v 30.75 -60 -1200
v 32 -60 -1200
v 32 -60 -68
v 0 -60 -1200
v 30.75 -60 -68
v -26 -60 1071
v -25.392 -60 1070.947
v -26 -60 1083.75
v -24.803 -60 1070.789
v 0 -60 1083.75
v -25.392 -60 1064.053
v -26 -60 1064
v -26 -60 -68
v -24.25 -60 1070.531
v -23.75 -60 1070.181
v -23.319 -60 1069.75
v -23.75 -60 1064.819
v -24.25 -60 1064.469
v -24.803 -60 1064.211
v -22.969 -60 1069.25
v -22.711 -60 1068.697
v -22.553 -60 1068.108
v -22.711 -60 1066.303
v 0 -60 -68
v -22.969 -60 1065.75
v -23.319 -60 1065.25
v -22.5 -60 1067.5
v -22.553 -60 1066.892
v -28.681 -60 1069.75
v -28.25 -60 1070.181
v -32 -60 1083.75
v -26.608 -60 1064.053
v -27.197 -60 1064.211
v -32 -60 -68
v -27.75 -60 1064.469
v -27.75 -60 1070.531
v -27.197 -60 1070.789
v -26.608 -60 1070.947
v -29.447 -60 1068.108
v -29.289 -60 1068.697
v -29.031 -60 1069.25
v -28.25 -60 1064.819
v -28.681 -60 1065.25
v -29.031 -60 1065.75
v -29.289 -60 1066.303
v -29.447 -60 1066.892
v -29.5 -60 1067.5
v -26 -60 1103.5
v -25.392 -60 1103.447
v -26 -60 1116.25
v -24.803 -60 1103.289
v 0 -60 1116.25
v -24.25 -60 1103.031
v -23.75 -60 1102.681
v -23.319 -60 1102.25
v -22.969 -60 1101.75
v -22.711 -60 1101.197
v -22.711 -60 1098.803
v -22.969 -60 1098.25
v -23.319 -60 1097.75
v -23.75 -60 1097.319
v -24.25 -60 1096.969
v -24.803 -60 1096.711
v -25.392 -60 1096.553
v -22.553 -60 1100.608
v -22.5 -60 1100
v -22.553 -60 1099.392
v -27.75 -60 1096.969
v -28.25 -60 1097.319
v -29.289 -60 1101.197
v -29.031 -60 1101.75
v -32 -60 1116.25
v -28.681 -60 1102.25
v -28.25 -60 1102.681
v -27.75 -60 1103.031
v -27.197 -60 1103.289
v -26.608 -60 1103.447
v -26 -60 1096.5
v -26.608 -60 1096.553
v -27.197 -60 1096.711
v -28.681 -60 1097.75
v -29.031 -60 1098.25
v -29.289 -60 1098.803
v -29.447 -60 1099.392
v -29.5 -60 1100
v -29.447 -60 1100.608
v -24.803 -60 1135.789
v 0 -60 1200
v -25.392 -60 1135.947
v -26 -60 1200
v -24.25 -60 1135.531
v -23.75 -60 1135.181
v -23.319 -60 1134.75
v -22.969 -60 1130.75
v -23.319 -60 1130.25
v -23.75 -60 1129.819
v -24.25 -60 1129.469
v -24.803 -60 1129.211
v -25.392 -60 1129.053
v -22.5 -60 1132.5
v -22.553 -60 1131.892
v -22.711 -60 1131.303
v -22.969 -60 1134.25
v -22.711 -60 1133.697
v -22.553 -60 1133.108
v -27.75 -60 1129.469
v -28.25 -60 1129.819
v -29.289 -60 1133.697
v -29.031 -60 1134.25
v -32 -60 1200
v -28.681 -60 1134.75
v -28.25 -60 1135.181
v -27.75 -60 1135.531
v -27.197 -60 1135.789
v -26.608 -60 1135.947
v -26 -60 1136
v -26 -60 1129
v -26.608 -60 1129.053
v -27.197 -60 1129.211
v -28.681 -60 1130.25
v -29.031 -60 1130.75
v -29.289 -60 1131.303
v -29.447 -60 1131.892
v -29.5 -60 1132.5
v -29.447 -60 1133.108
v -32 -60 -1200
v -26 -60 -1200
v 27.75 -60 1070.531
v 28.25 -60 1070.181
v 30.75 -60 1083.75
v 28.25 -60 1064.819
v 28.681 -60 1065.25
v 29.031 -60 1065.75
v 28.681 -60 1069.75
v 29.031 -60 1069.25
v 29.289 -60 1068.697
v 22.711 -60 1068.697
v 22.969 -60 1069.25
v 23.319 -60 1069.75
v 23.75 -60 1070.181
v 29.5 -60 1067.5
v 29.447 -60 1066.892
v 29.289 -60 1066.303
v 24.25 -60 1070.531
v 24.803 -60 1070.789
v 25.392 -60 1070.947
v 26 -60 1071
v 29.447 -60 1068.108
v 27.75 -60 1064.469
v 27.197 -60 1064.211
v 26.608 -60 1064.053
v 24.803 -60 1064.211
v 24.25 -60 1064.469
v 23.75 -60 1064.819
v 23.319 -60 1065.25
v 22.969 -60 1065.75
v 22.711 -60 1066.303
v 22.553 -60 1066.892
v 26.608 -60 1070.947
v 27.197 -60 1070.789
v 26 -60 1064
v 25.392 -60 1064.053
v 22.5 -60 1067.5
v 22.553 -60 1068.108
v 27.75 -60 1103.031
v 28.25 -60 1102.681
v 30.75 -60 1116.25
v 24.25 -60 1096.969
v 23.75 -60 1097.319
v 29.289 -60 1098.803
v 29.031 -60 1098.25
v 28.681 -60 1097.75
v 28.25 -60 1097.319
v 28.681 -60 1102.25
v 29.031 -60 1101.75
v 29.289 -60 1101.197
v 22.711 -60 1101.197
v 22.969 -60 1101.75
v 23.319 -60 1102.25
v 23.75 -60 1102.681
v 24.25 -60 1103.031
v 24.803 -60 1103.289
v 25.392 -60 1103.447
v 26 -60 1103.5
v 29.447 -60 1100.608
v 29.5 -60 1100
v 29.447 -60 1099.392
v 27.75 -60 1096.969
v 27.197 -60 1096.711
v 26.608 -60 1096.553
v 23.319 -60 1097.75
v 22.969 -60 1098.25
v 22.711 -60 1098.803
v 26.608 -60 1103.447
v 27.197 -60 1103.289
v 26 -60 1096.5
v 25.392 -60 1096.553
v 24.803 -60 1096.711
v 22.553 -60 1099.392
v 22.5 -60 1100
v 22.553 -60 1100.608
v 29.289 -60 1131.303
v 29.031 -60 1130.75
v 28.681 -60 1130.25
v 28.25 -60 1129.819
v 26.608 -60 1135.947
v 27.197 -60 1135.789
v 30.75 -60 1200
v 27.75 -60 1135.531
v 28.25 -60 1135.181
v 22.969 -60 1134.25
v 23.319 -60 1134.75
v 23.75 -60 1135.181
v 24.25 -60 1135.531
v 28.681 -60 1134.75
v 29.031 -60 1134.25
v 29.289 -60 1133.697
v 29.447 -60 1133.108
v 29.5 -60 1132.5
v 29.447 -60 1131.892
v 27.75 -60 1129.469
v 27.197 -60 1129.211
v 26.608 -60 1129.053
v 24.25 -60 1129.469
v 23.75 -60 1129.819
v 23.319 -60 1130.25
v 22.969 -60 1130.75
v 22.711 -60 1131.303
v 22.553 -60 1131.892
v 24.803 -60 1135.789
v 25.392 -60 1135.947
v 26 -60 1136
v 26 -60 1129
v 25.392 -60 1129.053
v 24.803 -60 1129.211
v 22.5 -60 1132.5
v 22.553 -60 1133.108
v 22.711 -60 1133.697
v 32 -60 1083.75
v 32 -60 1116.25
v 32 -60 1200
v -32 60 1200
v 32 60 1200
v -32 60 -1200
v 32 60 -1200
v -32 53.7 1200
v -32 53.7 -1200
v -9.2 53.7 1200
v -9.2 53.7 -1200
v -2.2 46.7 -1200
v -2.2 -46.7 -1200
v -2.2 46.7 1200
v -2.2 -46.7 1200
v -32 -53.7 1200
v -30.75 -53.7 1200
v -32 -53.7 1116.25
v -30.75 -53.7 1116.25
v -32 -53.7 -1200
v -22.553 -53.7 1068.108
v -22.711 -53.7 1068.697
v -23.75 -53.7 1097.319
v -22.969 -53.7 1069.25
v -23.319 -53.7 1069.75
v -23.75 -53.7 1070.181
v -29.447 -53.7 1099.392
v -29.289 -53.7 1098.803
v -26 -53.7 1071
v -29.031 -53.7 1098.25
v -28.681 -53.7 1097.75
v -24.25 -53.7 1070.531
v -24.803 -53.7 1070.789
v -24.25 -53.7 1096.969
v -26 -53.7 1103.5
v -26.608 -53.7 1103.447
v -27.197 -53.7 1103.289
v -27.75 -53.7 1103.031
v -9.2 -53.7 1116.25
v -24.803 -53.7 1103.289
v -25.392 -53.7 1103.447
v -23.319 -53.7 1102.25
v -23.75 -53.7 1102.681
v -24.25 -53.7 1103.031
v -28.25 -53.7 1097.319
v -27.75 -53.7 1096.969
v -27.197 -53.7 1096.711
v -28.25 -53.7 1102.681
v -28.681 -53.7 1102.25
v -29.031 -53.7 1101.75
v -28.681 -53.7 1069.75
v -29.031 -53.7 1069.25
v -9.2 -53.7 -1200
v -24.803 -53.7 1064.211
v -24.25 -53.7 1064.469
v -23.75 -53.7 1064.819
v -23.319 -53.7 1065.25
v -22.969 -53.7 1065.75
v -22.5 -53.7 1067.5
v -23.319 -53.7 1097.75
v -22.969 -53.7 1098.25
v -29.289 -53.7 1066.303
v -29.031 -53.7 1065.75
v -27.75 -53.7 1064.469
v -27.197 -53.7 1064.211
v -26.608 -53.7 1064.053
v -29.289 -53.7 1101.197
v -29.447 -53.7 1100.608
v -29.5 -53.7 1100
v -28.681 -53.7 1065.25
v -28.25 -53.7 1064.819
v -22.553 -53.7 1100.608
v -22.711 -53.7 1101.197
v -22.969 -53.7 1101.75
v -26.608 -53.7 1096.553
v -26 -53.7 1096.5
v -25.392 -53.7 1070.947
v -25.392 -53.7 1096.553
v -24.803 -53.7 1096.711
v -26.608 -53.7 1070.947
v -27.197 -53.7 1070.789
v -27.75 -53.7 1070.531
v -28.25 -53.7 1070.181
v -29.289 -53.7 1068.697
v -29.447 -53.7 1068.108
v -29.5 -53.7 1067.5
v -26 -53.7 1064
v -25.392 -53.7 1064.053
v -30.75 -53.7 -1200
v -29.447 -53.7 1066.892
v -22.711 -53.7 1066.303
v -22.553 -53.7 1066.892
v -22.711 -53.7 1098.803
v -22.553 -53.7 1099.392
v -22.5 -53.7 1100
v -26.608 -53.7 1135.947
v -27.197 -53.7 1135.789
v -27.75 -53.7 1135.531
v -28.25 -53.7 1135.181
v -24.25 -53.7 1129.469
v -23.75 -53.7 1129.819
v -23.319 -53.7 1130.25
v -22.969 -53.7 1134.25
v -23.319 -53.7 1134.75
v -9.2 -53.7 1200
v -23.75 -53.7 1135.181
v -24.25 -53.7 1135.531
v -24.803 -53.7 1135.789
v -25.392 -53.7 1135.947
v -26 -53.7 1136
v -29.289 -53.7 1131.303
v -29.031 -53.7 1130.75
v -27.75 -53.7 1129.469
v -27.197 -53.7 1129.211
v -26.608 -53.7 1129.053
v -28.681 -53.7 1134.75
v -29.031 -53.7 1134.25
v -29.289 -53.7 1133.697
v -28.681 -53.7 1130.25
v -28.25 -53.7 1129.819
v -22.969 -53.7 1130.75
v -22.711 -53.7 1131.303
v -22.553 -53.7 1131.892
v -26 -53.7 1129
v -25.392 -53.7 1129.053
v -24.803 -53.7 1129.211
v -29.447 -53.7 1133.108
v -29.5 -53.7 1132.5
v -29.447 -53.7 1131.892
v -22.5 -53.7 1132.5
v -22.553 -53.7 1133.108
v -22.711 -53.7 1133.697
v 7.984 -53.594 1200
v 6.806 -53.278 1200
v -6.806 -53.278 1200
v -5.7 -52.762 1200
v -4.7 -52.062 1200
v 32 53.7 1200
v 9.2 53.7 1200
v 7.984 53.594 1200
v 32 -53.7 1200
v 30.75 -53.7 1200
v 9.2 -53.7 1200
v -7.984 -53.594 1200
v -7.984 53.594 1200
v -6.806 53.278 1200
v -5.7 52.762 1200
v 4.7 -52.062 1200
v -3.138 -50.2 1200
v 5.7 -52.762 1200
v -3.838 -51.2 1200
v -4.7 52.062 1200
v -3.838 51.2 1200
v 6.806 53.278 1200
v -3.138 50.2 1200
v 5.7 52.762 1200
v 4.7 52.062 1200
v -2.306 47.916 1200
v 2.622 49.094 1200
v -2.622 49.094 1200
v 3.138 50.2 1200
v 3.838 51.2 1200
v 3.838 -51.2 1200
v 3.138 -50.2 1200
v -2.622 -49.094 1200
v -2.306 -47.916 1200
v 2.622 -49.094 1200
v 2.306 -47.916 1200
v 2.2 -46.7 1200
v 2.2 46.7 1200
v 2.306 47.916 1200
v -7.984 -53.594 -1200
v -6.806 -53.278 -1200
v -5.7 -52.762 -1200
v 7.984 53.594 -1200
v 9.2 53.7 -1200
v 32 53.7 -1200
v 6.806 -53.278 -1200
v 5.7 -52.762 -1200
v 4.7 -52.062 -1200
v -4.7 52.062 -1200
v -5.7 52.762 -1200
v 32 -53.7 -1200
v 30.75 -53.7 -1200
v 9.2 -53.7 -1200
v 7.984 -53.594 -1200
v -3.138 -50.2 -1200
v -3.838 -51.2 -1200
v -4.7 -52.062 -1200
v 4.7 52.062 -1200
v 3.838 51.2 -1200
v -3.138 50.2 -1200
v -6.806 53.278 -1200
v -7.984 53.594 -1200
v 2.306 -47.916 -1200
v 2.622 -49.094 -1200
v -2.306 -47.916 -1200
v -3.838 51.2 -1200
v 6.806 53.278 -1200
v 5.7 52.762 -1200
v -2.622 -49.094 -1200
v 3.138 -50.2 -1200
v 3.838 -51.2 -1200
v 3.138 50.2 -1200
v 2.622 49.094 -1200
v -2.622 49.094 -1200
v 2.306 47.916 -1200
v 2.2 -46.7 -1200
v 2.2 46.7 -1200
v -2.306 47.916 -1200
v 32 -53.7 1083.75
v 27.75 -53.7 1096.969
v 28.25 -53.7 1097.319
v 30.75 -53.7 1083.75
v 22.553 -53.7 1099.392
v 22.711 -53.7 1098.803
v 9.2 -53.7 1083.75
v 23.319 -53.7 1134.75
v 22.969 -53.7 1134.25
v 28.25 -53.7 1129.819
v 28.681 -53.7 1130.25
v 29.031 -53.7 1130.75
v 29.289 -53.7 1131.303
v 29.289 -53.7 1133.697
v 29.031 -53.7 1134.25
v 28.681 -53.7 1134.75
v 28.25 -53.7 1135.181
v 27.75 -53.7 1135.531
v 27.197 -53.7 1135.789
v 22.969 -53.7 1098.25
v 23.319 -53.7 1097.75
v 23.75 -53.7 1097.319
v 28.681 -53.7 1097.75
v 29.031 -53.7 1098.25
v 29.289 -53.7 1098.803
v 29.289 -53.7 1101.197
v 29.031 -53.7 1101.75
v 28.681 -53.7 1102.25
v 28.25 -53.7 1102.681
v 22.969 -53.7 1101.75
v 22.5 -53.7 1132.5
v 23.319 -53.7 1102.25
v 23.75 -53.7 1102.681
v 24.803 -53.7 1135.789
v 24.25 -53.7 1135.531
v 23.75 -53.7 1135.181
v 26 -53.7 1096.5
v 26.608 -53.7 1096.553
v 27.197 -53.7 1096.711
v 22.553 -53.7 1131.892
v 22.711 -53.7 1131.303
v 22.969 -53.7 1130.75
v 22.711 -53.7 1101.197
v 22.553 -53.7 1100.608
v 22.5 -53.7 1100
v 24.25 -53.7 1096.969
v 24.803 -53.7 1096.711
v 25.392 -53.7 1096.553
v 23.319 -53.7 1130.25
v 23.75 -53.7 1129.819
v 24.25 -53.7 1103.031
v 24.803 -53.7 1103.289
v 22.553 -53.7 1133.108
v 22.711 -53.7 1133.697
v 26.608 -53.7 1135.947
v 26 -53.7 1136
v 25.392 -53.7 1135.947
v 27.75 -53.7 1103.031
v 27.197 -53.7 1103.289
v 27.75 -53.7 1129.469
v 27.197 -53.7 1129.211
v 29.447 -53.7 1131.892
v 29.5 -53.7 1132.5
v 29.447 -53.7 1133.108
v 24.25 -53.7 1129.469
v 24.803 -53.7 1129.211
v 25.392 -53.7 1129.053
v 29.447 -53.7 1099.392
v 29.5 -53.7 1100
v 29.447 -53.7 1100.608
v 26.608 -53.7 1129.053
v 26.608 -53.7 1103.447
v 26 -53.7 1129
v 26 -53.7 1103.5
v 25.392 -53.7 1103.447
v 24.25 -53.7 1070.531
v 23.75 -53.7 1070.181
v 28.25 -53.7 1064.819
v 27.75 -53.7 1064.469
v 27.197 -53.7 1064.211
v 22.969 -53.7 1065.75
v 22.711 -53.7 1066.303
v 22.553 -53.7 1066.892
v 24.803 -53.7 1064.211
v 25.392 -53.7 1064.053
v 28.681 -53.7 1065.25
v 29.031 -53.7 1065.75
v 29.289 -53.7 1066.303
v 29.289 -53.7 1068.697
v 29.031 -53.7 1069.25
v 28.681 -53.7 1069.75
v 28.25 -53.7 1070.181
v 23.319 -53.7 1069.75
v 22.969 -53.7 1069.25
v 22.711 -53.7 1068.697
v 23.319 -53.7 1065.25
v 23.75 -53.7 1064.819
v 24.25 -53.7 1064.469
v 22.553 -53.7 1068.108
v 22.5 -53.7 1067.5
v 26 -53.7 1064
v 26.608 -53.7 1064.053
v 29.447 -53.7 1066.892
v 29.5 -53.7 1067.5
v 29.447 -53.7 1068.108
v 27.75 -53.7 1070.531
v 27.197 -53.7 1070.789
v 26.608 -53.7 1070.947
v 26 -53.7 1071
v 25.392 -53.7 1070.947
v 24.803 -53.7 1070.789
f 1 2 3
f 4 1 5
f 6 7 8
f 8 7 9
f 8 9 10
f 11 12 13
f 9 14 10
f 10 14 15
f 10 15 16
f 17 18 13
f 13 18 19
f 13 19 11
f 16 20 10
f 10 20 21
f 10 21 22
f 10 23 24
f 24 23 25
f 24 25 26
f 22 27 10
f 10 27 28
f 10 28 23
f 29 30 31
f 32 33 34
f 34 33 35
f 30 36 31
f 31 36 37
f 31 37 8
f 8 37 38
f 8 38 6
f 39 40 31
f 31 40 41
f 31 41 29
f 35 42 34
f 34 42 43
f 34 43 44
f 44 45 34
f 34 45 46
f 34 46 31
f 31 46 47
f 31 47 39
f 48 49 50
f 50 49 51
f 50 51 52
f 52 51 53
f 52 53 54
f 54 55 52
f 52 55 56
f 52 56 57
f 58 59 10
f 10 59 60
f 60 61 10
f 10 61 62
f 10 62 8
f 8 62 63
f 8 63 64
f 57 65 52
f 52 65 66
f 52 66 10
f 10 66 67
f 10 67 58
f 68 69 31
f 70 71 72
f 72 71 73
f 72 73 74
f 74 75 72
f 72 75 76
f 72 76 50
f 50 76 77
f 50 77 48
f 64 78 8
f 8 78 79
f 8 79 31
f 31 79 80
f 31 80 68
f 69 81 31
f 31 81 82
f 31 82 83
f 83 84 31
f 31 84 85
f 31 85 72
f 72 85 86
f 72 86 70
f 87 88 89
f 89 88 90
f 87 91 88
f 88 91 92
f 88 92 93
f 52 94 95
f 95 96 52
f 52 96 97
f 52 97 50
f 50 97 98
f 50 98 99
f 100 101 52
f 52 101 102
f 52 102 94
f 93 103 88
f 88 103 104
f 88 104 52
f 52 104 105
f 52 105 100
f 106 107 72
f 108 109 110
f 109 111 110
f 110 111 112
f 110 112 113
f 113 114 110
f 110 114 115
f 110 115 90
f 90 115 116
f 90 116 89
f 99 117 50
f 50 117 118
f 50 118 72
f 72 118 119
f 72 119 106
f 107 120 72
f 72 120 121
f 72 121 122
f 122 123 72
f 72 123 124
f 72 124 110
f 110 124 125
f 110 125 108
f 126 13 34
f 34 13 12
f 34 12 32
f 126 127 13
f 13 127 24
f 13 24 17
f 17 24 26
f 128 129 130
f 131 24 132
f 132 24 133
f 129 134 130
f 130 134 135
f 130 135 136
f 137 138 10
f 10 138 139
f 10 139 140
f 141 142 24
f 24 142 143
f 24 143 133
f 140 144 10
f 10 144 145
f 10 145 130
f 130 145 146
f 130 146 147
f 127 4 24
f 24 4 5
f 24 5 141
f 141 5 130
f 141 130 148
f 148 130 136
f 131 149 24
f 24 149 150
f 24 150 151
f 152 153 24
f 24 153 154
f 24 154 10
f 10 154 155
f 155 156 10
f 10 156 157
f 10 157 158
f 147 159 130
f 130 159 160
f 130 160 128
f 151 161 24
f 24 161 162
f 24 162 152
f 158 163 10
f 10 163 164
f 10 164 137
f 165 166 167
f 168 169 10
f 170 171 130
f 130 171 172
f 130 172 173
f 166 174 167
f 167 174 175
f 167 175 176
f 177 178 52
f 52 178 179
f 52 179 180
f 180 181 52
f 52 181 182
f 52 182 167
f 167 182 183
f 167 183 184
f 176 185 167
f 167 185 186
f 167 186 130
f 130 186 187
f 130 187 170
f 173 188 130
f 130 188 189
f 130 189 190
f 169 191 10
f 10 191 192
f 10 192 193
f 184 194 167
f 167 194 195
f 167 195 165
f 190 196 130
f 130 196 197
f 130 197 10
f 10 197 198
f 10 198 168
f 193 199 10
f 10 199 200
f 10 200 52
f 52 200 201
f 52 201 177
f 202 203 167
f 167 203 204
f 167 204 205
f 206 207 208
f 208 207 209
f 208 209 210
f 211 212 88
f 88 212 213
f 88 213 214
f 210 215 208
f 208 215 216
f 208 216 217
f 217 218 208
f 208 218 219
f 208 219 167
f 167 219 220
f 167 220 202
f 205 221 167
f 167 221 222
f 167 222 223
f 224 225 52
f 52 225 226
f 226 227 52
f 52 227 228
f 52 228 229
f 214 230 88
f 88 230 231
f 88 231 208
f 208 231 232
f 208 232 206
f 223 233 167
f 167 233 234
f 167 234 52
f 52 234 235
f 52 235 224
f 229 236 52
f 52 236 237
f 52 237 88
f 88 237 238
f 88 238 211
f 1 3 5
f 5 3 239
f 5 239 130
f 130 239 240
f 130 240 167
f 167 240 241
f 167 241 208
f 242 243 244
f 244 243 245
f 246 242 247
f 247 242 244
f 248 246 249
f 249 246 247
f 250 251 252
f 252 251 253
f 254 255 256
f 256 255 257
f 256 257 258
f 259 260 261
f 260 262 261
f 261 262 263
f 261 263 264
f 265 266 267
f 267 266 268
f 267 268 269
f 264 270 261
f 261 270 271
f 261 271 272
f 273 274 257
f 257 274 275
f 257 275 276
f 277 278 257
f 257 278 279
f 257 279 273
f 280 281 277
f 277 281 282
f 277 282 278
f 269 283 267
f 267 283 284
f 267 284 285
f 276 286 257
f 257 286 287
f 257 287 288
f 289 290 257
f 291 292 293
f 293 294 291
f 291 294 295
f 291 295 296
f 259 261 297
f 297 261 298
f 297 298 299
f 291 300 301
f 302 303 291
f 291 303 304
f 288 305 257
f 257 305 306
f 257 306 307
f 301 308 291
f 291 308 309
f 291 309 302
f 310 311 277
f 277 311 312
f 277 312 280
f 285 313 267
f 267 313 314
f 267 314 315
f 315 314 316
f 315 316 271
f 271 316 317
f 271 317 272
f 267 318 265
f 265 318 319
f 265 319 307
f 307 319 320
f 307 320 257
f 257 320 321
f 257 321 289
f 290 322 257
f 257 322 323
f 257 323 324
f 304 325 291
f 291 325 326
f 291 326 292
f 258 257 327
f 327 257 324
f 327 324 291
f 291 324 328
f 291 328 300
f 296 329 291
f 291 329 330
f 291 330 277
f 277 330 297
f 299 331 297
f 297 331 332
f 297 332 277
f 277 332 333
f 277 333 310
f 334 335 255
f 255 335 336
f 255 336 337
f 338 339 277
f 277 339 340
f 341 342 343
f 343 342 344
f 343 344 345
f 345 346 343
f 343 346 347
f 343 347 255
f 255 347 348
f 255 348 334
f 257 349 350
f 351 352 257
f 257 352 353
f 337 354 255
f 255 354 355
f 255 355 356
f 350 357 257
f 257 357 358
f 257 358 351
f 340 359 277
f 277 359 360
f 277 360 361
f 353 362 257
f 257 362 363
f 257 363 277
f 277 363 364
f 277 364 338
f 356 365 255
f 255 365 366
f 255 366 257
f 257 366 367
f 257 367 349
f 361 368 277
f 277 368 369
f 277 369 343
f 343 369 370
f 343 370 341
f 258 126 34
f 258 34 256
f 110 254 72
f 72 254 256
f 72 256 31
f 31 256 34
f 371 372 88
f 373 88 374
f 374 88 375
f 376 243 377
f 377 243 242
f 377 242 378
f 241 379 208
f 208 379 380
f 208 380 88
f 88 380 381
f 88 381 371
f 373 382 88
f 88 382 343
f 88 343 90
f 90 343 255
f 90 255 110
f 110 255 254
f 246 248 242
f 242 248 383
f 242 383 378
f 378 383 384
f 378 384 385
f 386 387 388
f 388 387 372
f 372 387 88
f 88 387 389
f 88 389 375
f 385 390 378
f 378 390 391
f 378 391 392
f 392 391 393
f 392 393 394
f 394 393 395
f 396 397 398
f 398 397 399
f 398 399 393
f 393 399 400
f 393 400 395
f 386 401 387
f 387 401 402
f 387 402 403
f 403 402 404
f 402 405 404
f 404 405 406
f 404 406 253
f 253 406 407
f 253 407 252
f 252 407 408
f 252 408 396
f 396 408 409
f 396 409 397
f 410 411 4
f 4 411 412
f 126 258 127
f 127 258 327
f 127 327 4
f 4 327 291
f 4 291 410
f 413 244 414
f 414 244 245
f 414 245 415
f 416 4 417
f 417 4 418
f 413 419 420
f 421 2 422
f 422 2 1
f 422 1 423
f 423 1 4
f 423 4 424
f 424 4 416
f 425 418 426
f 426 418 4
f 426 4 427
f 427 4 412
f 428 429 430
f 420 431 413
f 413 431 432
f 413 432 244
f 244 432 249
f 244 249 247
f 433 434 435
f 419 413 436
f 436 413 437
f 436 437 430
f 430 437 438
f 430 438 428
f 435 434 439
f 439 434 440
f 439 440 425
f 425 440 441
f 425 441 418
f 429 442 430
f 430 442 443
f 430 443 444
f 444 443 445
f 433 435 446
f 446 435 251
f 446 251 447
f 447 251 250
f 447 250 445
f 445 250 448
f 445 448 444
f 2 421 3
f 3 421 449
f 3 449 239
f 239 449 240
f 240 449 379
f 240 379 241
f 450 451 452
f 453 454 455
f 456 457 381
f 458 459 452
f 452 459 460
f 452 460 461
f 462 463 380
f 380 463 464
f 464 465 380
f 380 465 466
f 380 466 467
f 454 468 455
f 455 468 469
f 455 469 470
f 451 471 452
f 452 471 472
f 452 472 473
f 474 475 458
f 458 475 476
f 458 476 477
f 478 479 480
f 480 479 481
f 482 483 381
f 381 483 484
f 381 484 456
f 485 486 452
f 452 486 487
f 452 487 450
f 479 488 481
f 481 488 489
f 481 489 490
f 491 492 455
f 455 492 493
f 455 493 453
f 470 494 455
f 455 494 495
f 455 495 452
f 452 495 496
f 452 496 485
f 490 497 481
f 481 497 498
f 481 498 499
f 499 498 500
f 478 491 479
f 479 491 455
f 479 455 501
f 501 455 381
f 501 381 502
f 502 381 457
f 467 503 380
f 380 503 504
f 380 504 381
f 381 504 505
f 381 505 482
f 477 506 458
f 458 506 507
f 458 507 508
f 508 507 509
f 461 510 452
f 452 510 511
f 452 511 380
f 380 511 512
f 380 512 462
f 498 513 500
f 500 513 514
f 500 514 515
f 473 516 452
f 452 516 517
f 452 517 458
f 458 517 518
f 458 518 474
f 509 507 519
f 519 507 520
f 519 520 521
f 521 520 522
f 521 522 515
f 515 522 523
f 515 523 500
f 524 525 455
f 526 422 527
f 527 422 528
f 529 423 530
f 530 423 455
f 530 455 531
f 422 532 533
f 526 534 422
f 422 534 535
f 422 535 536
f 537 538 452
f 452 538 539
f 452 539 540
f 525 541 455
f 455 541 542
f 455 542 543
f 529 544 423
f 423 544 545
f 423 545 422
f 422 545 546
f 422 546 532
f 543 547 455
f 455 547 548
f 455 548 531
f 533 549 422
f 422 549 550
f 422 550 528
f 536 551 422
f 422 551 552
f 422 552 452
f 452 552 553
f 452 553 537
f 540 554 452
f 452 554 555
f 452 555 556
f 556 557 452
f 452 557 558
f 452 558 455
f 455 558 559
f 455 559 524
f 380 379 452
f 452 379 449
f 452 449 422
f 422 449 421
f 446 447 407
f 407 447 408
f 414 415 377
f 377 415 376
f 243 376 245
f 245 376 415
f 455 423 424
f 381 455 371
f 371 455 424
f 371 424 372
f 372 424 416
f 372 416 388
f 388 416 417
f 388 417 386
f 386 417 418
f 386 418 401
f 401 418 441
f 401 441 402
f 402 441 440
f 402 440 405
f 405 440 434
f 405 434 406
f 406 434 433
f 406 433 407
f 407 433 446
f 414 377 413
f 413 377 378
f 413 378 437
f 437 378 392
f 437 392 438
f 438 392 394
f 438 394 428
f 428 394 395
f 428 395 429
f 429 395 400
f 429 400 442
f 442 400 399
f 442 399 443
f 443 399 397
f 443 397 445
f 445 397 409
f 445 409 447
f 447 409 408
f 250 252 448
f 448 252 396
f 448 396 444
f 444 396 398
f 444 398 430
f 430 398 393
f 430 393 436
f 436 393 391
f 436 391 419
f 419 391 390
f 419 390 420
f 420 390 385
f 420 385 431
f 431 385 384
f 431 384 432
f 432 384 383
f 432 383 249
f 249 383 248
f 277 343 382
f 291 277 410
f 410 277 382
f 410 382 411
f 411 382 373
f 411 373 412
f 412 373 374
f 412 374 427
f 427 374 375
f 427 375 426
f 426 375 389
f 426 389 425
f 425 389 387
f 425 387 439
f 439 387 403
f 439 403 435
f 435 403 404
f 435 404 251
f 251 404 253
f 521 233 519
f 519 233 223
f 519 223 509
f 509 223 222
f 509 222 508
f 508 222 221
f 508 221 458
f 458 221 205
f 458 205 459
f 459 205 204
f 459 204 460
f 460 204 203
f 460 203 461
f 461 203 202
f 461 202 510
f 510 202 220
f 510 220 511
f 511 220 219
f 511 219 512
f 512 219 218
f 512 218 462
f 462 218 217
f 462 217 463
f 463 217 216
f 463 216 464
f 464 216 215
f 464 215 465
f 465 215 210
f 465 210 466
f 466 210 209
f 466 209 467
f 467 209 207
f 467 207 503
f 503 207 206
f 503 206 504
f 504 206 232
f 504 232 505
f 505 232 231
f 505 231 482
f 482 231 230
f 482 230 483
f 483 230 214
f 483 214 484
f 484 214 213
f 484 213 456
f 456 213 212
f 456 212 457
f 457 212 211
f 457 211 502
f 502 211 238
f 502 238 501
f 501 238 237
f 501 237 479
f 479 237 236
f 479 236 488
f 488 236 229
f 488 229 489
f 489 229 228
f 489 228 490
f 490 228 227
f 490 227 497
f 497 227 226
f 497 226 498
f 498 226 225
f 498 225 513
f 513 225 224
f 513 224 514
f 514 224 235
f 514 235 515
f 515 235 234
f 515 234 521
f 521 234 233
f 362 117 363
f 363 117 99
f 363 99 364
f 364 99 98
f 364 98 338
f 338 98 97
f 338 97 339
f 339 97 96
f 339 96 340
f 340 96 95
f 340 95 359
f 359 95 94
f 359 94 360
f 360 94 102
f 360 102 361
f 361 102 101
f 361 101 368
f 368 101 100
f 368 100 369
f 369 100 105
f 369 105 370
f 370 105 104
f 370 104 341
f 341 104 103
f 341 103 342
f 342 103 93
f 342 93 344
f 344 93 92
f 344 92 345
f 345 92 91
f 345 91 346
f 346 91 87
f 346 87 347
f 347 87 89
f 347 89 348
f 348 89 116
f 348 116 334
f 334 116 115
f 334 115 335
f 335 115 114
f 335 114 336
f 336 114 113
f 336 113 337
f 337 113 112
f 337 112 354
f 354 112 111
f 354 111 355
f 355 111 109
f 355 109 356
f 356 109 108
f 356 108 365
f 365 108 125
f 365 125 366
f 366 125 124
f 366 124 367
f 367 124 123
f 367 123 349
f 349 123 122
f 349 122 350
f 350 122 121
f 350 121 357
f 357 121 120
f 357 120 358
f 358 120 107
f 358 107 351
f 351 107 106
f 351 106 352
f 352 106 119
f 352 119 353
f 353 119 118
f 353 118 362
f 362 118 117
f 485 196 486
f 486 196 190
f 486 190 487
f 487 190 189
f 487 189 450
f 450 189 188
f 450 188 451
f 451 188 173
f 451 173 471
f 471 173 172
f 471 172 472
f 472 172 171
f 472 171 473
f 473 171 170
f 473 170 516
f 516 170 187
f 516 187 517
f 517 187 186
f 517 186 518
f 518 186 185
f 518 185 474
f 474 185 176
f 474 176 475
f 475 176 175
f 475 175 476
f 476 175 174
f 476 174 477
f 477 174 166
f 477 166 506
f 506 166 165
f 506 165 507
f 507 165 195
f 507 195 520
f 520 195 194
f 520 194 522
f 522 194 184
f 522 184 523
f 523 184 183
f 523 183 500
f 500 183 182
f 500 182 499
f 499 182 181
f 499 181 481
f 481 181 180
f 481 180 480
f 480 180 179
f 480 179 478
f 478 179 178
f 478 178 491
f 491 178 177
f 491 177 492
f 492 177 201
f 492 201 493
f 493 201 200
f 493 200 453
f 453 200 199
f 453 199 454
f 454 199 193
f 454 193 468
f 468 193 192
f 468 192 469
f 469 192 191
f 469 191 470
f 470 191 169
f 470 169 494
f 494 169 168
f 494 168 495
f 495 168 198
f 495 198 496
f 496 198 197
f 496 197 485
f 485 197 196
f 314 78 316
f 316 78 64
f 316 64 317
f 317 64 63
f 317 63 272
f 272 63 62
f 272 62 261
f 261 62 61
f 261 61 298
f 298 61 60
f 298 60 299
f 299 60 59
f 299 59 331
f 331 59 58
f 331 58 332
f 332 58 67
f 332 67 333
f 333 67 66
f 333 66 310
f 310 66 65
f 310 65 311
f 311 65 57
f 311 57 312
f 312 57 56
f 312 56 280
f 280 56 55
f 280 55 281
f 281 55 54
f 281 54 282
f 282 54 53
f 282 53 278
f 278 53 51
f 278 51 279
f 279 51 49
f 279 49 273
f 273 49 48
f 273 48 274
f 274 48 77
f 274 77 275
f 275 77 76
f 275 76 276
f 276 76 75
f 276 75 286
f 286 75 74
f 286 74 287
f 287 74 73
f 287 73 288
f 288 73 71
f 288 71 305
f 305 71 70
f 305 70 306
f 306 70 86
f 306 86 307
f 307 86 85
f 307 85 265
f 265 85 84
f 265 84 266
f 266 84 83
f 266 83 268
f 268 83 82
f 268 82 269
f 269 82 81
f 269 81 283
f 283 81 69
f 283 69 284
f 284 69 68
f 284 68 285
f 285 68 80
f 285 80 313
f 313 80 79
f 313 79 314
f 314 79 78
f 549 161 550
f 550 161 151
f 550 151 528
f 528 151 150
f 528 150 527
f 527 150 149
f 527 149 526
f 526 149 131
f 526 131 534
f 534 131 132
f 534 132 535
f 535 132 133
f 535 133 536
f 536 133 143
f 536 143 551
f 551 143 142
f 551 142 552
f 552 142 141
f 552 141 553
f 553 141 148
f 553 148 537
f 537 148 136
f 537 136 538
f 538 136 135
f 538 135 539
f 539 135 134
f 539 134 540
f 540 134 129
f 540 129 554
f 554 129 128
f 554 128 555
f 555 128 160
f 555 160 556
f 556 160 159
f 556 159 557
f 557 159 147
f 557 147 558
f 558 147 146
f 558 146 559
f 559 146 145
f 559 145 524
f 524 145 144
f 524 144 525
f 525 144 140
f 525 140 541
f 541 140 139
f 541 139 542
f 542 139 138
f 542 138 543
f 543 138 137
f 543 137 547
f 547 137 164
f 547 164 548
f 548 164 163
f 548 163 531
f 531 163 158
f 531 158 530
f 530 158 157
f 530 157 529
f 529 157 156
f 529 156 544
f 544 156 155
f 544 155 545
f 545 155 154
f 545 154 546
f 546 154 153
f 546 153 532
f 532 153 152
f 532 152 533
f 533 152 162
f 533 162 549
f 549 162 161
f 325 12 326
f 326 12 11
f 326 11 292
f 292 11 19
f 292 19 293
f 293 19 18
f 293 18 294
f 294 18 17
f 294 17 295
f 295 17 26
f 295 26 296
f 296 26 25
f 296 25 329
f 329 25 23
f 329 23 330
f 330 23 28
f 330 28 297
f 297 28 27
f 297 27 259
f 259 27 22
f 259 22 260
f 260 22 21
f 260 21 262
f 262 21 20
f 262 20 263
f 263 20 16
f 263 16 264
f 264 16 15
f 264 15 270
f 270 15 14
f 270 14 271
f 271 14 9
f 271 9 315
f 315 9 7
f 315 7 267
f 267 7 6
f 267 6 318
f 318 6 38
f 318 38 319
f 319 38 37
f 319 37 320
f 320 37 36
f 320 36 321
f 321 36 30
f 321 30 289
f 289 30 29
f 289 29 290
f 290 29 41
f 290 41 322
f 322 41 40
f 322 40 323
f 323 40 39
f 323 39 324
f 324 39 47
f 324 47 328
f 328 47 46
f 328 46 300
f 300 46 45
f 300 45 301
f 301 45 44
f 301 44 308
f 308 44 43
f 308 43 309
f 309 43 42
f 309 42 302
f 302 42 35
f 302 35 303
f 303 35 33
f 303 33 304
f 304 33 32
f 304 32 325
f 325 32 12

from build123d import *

# Parameters (mm, degrees)
BOSS_EXTRUDE1_DEPTH      = 1200
MIRROR1_START            = -60
MIRROR1_OUTLINE_W        = 2.2
MIRROR1_OUTLINE_H        = 2400
MIRROR1_DEPTH            = 120
MIRROR1_2_OUTLINE_W      = 29.8
MIRROR1_2_OUTLINE_H      = 2400
MIRROR1_2_DEPTH          = 6.3
MIRROR1_START_2          = 53.7
MIRROR1_3_OUTLINE_W      = 29.8
MIRROR1_3_OUTLINE_H      = 2400
MIRROR1_3_DEPTH          = 6.3
FILLET1_R                = 7
M6_CLEARANCE_HOLE1_D     = 7
M6_CLEARANCE_HOLE1_DEPTH = 6.3
LPATTERN1_COUNT          = 3
LPATTERN1_PITCH          = 32.5
LPATTERN1_COUNT_DIR2     = 2
LPATTERN1_PITCH_DIR2     = 52


# Read off the part's stored shape, not the designer's step: Mirror1
with BuildPart() as part:
    # Sketch1 → Boss-Extrude1 (new, symmetric)
    with BuildSketch(Plane.XY):
        Polygon((0, 60), (0, -60), (-32, -60), (-32, -53.7), (-2.2, -53.7), (-2.2, 53.7), (-32, 53.7), (-32, 60), align=None)
    extrude(amount=BOSS_EXTRUDE1_DEPTH, both=True)

    # Mirror1 outline → Mirror1 (add)
    with BuildSketch(Plane(origin=(0, 0, 0), x_dir=(1, 0, 0), z_dir=(0, 1, 0)).offset(MIRROR1_START)):
        with Locations((1.1, 0)):
            Rectangle(MIRROR1_OUTLINE_W, MIRROR1_OUTLINE_H)
    extrude(amount=MIRROR1_DEPTH)

    # Mirror1 2 outline → Mirror1 2 (add)
    with BuildSketch(Plane(origin=(0, 0, 0), x_dir=(1, 0, 0), z_dir=(0, 1, 0)).offset(MIRROR1_START)):
        with Locations((17.1, 0)):
            Rectangle(MIRROR1_2_OUTLINE_W, MIRROR1_2_OUTLINE_H)
    extrude(amount=MIRROR1_2_DEPTH)

    # Mirror1 3 outline → Mirror1 3 (add)
    with BuildSketch(Plane(origin=(0, 0, 0), x_dir=(1, 0, 0), z_dir=(0, 1, 0)).offset(MIRROR1_START_2)):
        with Locations((17.1, 0)):
            Rectangle(MIRROR1_3_OUTLINE_W, MIRROR1_3_OUTLINE_H)
    extrude(amount=MIRROR1_3_DEPTH)

    # Fillet1
    fillet1_edges = [part.edges().sort_by_distance(p)[0] for p in [
        (-2.2, -53.7, 0),
        (-2.2, 53.7, 0),
        (2.2, -53.7, 0),
        (2.2, 53.7, 0),
    ]]
    fillet(fillet1_edges, radius=FILLET1_R)

    # M6 Clearance Hole1
    with Locations(Plane(origin=(0, -60, 0), x_dir=(-1, 0, 0), z_dir=(0, -1, 0))):
        with Locations((-26, -1132.5)):
            m6_clearance_hole1 = Hole(M6_CLEARANCE_HOLE1_D / 2, depth=M6_CLEARANCE_HOLE1_DEPTH)

    # LPattern1: M6 Clearance Hole1 3 × 2
    with Locations(*[(-j * LPATTERN1_PITCH_DIR2, 0, -i * LPATTERN1_PITCH) for i in range(LPATTERN1_COUNT) for j in range(LPATTERN1_COUNT_DIR2) if (i, j) != (0, 0)]):
        add(m6_clearance_hole1, mode=Mode.SUBTRACT)


solid = part.part
